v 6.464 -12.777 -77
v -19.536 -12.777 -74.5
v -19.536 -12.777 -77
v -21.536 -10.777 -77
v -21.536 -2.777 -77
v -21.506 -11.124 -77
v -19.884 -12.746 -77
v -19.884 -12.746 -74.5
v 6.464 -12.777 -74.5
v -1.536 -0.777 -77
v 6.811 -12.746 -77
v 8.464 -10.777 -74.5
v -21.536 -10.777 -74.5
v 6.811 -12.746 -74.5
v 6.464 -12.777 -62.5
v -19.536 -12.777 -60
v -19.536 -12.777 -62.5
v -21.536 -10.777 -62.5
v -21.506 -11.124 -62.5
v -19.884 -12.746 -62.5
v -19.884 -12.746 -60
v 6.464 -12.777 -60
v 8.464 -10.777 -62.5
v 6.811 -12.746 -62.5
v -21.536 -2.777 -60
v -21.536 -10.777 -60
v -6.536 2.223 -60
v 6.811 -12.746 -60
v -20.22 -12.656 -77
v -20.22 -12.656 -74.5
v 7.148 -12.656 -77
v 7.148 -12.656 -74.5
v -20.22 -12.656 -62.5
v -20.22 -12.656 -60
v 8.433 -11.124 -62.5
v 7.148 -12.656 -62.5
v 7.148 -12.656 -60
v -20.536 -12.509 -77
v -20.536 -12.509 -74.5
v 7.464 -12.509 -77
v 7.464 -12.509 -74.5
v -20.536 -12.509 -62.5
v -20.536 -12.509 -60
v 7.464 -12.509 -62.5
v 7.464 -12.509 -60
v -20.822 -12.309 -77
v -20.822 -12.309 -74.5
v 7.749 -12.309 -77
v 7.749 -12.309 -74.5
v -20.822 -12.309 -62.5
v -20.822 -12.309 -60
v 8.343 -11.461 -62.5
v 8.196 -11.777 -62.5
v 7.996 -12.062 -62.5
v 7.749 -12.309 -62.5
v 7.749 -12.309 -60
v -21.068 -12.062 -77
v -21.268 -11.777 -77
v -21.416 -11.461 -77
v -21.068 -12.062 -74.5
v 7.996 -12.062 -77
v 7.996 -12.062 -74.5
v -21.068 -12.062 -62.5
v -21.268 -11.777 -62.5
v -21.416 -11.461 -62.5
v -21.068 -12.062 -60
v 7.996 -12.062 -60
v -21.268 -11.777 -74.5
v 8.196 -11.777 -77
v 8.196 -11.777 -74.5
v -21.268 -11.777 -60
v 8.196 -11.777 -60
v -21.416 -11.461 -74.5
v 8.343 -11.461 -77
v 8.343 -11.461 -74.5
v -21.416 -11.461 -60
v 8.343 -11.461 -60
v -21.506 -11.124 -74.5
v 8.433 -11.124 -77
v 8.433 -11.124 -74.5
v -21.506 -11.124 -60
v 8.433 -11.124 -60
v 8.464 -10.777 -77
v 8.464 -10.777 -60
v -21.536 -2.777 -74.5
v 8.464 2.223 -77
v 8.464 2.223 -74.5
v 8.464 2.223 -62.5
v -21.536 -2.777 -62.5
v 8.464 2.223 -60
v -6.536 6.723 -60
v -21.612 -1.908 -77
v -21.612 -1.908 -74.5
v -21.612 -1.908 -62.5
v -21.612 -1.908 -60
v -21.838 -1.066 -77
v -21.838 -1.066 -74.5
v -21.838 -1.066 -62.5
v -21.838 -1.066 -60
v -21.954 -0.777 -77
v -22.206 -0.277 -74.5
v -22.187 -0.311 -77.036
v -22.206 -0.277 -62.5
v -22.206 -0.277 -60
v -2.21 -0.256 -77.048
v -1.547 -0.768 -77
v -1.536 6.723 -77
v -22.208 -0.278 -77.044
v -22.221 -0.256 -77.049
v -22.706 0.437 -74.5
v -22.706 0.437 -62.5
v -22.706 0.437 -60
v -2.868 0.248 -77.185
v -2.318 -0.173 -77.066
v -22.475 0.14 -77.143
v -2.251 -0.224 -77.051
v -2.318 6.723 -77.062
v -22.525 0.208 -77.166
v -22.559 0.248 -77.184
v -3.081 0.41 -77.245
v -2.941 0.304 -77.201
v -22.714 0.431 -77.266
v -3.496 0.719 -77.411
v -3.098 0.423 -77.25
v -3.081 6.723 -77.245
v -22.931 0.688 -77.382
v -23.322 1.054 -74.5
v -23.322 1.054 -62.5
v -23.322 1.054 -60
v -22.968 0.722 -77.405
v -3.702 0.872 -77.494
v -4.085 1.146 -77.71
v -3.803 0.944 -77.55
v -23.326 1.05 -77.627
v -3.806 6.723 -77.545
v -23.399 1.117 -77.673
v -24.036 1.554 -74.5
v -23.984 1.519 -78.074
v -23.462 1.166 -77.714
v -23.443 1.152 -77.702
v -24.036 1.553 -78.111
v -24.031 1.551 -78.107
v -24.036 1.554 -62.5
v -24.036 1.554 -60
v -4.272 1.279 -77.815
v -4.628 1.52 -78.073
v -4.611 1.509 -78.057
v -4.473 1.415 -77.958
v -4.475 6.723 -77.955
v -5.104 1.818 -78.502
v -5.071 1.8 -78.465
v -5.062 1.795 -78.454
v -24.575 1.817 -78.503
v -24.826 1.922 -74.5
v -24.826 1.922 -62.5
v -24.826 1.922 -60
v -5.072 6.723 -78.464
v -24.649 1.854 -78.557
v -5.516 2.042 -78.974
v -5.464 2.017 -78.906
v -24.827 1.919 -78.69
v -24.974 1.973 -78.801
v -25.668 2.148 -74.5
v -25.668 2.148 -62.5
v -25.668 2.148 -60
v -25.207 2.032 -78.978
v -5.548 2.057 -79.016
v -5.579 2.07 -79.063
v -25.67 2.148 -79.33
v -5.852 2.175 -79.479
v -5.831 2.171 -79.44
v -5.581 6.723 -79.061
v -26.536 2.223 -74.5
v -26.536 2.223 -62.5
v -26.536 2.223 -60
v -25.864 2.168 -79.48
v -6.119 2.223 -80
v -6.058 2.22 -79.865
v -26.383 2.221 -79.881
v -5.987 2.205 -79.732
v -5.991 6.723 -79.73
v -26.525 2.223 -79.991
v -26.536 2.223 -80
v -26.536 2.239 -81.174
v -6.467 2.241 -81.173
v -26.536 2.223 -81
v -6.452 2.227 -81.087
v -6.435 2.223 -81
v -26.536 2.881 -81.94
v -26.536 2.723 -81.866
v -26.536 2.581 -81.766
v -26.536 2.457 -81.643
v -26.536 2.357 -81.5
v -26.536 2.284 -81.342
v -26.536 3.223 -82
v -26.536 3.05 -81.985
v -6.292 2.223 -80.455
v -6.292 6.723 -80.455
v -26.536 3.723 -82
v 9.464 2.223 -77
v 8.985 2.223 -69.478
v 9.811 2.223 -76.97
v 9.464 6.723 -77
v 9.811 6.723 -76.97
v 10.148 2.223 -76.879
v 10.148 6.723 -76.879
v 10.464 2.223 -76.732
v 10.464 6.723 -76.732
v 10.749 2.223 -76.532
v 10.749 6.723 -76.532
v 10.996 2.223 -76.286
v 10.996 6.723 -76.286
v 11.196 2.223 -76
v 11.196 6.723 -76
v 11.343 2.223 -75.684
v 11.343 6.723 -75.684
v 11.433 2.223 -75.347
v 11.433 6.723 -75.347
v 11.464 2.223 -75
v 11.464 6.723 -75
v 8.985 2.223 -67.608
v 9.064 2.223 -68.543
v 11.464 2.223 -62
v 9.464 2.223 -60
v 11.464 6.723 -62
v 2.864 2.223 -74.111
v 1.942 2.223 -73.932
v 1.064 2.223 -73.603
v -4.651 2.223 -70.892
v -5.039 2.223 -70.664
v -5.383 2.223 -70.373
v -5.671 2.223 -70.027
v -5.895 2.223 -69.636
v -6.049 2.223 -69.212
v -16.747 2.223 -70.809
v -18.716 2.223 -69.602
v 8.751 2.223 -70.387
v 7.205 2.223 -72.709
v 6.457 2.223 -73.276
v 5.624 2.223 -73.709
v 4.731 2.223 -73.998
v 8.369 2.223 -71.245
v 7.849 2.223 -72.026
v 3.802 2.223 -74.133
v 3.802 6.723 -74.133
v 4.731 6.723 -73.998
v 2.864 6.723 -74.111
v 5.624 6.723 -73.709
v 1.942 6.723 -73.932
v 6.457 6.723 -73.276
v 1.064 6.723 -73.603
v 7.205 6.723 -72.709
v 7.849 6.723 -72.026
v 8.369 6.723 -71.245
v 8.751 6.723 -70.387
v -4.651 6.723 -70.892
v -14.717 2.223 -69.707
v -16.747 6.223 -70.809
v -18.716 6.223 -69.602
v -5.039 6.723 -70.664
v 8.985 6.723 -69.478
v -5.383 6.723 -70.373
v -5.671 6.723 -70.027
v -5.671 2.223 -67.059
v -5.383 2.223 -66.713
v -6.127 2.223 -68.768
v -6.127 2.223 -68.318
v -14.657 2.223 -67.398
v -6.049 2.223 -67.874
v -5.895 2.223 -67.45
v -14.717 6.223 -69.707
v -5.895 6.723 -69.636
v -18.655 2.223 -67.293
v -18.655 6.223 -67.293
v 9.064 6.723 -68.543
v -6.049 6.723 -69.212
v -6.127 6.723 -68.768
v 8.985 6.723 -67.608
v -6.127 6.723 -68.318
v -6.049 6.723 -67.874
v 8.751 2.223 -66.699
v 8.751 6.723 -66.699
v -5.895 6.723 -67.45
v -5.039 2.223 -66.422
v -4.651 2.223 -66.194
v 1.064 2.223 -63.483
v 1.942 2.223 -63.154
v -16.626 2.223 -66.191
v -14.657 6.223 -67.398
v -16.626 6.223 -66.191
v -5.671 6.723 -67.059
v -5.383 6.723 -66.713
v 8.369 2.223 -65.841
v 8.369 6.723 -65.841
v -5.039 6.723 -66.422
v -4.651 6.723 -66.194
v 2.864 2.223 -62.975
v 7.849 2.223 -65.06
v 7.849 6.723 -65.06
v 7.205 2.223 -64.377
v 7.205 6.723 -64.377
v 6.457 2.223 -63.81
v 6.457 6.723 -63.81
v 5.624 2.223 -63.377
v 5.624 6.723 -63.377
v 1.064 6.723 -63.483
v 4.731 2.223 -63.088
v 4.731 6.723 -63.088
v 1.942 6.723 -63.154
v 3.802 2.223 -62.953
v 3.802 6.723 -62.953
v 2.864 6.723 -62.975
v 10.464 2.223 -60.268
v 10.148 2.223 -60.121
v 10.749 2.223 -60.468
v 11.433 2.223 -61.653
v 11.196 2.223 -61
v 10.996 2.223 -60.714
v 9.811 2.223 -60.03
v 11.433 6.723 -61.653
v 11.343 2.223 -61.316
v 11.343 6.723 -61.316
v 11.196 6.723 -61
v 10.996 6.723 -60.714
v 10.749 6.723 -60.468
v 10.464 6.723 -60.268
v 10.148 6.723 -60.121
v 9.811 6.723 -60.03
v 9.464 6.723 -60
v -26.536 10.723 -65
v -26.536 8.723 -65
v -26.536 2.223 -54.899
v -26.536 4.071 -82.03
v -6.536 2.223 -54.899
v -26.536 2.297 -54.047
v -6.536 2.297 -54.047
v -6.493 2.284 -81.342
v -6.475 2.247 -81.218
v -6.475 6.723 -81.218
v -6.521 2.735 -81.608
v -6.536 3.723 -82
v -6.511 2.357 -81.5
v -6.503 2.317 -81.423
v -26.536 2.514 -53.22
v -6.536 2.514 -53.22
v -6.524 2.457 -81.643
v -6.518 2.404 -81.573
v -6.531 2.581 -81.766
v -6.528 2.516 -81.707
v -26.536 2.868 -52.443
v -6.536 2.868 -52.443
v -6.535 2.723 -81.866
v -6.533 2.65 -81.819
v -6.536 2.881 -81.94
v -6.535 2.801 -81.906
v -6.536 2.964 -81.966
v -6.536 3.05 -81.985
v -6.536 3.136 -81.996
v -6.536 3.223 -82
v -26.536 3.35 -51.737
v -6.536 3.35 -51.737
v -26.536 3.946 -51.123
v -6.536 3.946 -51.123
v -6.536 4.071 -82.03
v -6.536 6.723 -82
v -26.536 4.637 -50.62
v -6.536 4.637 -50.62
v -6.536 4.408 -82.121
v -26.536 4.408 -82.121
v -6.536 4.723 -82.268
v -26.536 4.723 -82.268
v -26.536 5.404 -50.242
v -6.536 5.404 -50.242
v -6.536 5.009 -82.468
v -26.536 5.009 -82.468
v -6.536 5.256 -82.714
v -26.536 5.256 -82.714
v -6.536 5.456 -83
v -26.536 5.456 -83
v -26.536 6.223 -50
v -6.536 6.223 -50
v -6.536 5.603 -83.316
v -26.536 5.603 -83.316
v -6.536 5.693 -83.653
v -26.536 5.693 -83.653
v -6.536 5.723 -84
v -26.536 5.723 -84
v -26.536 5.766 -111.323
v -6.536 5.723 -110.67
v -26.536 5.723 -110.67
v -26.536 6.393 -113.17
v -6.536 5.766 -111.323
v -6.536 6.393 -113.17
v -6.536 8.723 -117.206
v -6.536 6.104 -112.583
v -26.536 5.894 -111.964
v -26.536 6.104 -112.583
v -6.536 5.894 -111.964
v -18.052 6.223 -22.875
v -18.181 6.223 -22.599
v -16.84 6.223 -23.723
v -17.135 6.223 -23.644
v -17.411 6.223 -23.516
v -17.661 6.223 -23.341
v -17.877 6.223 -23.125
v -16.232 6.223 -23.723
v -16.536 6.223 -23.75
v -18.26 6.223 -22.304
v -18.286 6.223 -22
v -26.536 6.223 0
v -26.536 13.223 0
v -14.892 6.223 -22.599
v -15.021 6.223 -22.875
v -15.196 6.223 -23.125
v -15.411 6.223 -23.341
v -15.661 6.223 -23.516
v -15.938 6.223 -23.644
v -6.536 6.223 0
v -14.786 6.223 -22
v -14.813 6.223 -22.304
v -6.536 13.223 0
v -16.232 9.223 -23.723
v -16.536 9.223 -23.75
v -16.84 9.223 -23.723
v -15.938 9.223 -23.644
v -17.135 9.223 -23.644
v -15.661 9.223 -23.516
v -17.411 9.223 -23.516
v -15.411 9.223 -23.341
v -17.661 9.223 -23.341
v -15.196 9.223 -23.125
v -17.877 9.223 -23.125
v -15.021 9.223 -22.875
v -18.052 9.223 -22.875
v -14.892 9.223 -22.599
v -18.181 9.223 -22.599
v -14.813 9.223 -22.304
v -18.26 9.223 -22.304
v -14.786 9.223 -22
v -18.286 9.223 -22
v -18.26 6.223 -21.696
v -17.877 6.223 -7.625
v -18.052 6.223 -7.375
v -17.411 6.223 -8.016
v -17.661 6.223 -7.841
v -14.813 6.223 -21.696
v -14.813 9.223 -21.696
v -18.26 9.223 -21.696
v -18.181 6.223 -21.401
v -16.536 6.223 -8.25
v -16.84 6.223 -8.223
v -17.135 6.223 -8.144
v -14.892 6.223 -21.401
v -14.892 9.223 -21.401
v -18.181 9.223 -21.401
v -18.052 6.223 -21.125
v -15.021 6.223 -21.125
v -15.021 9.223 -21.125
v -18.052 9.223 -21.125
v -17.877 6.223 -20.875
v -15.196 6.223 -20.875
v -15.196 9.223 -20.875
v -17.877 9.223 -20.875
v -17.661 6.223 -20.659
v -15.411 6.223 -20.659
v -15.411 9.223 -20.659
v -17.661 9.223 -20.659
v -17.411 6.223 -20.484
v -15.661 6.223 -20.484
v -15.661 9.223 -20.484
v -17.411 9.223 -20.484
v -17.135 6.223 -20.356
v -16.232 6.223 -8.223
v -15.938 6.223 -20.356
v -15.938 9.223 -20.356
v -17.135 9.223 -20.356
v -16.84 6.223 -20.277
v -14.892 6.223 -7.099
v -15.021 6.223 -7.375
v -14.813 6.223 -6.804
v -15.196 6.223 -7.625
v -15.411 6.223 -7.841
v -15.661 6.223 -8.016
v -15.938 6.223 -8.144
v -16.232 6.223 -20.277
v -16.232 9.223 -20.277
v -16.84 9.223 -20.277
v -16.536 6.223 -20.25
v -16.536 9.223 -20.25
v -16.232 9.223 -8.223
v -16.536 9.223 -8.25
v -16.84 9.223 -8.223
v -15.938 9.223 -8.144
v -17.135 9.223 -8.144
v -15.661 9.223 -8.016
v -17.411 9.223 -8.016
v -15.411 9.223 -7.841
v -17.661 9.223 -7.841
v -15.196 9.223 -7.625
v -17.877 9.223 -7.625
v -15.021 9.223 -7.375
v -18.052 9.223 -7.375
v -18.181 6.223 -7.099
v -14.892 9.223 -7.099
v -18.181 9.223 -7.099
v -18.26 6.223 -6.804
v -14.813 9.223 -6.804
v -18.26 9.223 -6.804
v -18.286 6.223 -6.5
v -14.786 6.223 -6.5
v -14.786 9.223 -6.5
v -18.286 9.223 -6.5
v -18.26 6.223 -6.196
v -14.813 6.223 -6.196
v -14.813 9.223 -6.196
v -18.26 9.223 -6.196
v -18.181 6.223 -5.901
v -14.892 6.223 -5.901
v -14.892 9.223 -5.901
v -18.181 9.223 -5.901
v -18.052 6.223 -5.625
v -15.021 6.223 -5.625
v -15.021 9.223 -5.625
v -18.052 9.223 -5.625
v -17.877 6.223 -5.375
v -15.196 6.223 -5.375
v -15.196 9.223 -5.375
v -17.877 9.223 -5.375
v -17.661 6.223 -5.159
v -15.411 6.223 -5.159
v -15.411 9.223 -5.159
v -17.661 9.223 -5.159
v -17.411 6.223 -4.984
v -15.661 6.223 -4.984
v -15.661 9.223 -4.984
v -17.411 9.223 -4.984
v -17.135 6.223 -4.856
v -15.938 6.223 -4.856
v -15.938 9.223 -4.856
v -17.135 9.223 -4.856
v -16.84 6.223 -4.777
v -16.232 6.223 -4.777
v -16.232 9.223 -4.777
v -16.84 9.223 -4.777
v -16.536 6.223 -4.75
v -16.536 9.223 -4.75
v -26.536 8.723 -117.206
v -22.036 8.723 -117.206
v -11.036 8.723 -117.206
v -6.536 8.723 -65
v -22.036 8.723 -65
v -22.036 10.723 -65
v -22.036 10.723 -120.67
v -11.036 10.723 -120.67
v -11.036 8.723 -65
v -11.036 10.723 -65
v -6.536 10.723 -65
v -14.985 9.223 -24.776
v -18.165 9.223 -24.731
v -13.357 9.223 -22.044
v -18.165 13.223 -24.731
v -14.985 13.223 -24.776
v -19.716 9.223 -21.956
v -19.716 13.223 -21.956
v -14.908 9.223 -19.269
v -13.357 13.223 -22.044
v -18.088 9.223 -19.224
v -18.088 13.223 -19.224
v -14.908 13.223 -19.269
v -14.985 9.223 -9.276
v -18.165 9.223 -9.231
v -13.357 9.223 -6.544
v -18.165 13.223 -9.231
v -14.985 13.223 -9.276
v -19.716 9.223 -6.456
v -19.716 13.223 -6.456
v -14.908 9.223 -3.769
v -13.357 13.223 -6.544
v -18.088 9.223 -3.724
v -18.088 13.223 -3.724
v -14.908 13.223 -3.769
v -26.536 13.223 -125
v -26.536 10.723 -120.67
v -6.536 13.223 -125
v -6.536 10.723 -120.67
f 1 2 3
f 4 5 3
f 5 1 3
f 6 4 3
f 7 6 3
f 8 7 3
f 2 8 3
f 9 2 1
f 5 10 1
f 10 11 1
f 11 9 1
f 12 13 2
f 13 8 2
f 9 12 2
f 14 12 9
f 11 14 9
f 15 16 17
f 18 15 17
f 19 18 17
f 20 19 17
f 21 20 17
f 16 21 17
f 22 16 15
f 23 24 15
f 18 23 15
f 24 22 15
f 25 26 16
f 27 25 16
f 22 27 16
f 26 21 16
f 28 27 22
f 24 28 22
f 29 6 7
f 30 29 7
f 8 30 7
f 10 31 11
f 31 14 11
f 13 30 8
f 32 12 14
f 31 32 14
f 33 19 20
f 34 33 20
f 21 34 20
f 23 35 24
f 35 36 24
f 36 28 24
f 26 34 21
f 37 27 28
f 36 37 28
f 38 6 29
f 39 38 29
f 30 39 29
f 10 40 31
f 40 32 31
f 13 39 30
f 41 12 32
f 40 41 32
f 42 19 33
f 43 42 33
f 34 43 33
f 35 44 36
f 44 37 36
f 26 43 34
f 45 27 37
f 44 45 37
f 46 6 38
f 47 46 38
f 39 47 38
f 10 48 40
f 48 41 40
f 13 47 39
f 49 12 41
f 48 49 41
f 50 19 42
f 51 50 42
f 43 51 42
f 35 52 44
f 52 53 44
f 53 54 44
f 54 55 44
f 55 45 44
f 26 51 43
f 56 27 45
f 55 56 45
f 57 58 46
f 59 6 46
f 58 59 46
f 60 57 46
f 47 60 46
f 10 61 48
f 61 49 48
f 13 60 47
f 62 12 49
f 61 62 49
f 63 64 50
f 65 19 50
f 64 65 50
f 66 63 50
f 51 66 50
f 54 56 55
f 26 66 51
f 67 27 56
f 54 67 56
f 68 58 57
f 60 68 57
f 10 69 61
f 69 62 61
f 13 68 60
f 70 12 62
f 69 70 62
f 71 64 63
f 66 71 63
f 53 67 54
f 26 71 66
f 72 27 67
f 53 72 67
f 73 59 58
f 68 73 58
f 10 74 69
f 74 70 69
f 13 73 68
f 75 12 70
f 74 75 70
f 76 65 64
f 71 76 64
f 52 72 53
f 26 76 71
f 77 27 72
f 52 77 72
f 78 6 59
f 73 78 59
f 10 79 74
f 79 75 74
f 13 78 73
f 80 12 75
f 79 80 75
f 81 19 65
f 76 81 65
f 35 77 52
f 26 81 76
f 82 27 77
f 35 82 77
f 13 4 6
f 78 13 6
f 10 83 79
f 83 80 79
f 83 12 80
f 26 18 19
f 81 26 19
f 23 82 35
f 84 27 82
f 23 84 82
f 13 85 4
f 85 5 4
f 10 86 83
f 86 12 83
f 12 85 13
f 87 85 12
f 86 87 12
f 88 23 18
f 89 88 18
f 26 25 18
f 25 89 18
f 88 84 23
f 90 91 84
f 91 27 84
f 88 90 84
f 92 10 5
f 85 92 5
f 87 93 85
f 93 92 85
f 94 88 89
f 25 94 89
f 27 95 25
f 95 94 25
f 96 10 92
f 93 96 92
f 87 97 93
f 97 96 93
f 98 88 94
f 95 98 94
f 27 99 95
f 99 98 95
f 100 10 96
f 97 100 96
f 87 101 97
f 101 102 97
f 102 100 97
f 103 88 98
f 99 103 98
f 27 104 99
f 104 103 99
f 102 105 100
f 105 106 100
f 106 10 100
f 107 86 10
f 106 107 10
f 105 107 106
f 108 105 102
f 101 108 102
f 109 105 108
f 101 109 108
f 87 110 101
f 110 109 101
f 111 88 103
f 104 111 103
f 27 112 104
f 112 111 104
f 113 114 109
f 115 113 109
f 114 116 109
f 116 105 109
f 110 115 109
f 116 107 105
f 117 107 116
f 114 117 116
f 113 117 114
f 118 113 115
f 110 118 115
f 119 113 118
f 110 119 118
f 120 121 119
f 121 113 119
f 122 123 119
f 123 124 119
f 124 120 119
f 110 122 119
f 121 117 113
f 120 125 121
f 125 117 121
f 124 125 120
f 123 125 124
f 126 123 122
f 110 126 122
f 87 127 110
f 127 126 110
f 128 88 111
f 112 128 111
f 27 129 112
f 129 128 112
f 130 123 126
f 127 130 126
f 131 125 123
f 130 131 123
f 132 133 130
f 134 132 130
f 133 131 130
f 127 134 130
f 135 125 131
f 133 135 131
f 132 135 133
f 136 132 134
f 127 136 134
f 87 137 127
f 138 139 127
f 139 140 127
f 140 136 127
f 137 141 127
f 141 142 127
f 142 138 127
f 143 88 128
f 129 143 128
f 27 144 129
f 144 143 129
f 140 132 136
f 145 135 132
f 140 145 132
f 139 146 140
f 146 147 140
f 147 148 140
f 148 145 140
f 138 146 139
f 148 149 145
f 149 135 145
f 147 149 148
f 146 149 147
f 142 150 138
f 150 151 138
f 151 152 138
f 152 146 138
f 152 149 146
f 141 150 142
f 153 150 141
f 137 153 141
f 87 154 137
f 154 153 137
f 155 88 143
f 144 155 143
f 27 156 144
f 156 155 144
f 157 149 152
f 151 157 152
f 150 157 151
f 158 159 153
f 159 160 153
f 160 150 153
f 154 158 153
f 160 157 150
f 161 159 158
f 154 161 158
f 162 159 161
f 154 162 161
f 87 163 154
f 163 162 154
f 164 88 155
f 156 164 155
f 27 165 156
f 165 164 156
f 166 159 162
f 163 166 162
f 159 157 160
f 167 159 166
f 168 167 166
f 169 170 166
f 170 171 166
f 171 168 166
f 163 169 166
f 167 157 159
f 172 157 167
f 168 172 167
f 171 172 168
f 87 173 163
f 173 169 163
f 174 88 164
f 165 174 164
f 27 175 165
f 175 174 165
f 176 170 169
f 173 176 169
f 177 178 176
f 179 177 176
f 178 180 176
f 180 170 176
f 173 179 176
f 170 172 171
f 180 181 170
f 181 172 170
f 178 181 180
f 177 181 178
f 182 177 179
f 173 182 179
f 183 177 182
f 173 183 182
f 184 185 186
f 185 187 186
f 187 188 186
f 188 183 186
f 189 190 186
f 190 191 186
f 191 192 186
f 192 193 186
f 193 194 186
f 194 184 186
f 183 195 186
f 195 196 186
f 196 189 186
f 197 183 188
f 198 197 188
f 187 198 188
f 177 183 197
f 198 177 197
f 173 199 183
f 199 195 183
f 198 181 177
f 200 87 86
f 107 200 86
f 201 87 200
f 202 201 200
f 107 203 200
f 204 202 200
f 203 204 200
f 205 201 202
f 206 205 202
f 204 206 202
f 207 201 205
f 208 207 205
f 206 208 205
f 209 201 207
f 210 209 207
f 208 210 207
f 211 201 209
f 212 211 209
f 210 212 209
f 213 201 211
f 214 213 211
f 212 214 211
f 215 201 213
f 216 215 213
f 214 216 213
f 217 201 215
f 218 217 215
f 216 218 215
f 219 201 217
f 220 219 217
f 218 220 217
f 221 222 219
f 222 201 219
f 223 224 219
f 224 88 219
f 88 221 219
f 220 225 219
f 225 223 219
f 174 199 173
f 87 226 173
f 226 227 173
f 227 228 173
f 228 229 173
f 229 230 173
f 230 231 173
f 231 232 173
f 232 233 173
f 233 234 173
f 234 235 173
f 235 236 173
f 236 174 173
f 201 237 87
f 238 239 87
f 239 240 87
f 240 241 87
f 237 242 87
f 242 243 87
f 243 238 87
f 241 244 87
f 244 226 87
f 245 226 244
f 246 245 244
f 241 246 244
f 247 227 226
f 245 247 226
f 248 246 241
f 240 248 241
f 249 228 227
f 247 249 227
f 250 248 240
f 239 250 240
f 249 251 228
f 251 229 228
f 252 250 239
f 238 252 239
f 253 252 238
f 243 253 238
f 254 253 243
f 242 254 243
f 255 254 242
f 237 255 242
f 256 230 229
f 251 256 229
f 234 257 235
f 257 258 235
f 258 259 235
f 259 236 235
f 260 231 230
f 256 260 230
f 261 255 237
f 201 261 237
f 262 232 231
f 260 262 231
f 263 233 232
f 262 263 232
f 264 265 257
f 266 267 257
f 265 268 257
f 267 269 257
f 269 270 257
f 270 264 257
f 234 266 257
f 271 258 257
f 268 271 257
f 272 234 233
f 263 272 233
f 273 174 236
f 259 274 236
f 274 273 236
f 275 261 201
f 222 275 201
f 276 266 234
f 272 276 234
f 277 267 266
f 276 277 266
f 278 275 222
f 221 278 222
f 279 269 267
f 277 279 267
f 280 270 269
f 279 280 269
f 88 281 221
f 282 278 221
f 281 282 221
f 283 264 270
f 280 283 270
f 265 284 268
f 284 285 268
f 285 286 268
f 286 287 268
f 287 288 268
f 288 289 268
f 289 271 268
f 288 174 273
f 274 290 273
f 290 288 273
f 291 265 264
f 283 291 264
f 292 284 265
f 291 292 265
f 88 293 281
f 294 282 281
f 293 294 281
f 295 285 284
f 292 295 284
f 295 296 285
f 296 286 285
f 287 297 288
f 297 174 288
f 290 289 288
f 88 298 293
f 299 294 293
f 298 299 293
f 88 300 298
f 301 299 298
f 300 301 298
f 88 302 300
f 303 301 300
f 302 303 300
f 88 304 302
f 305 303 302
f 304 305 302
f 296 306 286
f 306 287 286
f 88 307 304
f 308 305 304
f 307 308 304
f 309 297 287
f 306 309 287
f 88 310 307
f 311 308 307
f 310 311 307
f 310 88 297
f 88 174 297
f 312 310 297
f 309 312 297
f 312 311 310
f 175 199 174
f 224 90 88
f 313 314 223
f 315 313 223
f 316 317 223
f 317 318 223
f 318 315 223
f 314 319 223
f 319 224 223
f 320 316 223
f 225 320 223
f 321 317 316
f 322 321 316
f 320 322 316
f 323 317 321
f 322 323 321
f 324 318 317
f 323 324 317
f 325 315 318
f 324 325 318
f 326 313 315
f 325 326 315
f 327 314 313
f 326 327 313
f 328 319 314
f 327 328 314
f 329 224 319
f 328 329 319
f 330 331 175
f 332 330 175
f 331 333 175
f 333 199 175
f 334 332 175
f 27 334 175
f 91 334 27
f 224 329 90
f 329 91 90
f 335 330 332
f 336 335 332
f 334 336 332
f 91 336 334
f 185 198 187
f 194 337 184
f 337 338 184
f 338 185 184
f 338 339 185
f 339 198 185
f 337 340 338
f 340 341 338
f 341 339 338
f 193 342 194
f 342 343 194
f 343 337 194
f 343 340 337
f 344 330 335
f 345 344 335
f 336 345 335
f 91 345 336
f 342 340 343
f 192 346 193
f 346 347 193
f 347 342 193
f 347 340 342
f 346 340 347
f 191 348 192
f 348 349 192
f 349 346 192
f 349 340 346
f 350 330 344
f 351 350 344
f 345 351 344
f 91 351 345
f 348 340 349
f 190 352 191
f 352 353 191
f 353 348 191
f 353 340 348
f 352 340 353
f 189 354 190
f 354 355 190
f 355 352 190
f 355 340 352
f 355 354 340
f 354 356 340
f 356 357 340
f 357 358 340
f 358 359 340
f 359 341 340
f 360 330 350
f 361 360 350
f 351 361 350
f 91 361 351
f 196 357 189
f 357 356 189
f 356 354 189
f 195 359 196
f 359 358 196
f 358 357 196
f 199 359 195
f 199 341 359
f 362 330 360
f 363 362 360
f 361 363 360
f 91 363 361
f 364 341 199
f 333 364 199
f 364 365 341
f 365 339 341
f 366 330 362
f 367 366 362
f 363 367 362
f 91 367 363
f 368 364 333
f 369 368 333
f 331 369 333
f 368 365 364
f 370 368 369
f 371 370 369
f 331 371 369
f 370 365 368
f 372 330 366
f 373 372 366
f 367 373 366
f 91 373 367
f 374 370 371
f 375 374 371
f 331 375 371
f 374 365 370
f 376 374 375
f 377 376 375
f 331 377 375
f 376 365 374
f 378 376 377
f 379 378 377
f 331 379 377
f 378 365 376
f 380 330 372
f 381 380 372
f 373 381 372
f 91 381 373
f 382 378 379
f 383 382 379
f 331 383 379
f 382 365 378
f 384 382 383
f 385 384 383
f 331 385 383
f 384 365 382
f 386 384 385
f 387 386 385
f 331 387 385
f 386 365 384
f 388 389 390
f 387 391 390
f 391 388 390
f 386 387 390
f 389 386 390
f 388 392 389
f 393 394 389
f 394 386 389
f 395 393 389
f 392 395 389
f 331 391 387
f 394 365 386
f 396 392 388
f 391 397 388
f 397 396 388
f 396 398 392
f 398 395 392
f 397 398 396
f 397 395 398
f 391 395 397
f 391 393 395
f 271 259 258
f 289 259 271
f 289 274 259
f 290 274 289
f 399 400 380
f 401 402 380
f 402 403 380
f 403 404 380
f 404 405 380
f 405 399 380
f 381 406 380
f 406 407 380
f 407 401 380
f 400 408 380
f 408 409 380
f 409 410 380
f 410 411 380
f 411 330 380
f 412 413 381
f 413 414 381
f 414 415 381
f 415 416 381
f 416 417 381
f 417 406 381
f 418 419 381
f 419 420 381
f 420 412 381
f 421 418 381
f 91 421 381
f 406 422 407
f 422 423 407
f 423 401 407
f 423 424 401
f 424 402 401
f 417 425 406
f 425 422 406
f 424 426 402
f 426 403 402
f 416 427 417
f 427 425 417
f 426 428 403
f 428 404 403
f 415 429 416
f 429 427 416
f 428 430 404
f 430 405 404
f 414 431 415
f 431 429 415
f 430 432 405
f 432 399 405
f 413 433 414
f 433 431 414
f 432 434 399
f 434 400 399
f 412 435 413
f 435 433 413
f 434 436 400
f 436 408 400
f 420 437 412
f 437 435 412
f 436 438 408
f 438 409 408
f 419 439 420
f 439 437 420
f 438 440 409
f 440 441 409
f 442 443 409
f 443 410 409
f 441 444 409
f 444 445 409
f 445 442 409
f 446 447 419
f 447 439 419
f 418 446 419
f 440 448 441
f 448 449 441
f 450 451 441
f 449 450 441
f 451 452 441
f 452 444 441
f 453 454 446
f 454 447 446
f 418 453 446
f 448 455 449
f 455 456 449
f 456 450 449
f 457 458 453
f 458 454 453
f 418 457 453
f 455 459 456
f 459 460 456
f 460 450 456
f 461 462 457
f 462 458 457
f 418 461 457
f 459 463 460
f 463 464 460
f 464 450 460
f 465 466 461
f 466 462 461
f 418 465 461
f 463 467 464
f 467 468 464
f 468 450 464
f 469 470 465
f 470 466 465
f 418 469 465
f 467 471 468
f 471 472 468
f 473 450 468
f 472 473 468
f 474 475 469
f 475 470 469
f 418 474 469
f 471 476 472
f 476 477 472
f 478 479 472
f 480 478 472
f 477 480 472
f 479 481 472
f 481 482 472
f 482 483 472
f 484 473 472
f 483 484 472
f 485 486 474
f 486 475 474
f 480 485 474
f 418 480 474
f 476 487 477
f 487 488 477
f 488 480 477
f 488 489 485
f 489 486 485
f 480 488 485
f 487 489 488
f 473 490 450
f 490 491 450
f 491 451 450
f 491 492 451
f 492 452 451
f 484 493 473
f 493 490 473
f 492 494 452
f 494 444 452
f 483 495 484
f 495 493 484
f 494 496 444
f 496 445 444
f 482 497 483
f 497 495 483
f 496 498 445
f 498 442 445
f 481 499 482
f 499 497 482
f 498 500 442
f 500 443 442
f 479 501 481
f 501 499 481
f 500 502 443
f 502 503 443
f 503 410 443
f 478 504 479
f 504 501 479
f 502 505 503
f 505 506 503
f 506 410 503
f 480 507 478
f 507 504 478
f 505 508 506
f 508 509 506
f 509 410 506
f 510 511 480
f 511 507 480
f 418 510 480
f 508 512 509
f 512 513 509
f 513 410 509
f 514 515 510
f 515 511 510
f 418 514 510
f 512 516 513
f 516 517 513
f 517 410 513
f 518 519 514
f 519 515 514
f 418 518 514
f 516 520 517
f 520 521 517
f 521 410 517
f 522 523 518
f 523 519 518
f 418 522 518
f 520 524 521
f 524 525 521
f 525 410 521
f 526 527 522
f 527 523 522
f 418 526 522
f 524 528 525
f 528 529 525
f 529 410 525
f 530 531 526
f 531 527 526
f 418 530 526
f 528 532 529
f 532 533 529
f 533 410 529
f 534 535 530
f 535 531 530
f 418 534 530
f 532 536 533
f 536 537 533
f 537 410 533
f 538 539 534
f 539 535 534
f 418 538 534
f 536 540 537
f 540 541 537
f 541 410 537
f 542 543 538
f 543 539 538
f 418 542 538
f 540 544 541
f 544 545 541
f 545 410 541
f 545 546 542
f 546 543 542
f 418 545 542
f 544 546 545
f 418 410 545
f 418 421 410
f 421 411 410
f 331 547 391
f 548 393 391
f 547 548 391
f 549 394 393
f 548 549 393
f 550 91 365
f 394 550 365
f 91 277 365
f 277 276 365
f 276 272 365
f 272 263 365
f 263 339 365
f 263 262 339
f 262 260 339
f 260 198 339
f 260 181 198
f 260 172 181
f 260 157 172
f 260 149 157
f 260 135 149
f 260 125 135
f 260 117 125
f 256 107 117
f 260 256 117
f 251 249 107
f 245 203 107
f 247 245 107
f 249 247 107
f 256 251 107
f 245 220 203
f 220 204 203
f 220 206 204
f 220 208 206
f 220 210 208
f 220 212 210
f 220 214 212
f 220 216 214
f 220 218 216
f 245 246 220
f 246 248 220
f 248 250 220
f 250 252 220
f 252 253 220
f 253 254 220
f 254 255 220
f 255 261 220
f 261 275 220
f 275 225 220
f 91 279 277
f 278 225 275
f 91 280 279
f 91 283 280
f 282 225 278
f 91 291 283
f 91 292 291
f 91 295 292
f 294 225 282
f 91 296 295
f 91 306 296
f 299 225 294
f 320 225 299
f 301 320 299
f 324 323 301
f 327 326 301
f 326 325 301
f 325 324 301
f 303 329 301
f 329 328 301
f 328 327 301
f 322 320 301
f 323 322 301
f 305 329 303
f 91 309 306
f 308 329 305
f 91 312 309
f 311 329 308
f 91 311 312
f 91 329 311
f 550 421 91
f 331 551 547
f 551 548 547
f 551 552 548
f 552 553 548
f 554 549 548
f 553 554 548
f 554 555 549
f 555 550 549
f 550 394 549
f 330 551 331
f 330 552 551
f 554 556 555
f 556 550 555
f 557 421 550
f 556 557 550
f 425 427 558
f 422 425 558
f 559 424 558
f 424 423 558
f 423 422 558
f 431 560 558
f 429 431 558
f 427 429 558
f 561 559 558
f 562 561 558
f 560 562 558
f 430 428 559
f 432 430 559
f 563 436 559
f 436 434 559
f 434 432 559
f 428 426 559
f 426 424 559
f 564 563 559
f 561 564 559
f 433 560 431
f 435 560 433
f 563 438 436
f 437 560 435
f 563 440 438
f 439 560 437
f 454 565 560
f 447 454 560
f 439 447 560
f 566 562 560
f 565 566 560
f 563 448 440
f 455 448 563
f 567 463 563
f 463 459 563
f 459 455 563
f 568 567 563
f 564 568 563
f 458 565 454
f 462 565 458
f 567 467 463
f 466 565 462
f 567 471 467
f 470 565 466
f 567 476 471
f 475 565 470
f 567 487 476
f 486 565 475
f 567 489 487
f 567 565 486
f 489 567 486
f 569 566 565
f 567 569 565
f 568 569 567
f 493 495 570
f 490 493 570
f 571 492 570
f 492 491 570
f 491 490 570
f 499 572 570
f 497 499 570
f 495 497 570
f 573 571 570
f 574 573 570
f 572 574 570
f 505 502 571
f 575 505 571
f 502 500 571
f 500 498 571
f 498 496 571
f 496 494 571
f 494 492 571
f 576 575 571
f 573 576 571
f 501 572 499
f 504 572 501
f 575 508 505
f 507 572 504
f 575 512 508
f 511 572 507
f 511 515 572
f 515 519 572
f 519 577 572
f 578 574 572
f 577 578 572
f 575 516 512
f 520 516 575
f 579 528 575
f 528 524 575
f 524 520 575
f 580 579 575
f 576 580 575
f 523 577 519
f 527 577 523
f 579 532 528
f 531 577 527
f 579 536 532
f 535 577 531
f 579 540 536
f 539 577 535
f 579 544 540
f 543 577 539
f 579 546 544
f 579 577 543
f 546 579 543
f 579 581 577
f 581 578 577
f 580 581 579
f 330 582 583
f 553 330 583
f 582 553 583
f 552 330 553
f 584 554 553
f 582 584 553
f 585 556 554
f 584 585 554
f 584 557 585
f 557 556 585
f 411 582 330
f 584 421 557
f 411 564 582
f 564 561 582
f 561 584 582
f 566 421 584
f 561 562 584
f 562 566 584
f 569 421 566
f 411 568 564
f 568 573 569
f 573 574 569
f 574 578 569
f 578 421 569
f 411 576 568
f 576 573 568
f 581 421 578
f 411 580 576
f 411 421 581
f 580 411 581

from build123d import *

# Parameters (mm, degrees)
SKETCH1_W                = 20
SKETCH1_H                = 8
BOSS_EXTRUDE1_DEPTH      = 125
CUT_EXTRUDE1_DEPTH       = 60
SKETCH3_W                = 20
SKETCH3_H                = 125
BOSS_EXTRUDE2_DEPTH      = 3
SKETCH5_W                = 4.5
SKETCH5_H                = 2
CUT_EXTRUDE2_DEPTH       = 60
BOSS_EXTRUDE5_DEPTH      = 15
BOSS_EXTRUDE5_DEPTH_BACK = 15
SKETCH9_W                = 2.5
SKETCH9_H                = 15
SKETCH10_W               = 17
SKETCH10_H               = 4.5
BOSS_EXTRUDE6_DEPTH      = 18
CUT_EXTRUDE3_DEPTH       = 129.663032374
CUT_EXTRUDE4_DEPTH       = 4
FILLET1_R                = 5
FILLET2_R                = 3
FILLET3_R                = 5
FILLET4_R                = 2
SKETCH13_W               = 46.736094472
SKETCH13_H               = 46.819354585
CUT_EXTRUDE5_DEPTH       = 30
SKETCH14_W               = 30.537207939
SKETCH14_H               = 50.61246041
CUT_EXTRUDE6_DEPTH       = 3.5
FILLET5_R                = 5
FILLET6_R                = 2
FILLET7_R                = 1
FILLET8_R                = 2
SKETCH15_W               = 20
SKETCH15_H               = 60
CUT_EXTRUDE7_DEPTH       = 5
SKETCH16_W               = 20
SKETCH16_H               = 60
BOSS_EXTRUDE7_DEPTH      = 1.5
SKETCH17_W               = 20
SKETCH17_H               = 10
BOSS_EXTRUDE8_DEPTH      = 4
FILLET9_R                = 5
SKETCH18_R               = 1.75
CUT_EXTRUDE8_DEPTH       = 131.403895283
CUT_EXTRUDE9_DEPTH       = 4


# Some blends are built 0.0001 mm under size
with BuildPart() as part:
    # Sketch1 → Boss-Extrude1 (new body)
    with BuildSketch(Plane.XY):
        with Locations((-16.536312849, 6.223463687)):
            Rectangle(SKETCH1_W, SKETCH1_H)
    extrude(amount=-BOSS_EXTRUDE1_DEPTH)

    # Sketch2 → Cut-Extrude1 (cut)
    with BuildSketch(Plane.XY):
        Polygon((-26.536312849, 7.723463687), (-22.186312849, 7.723463687), (-22.186312849, 5.723463687), (-23.686312849, 5.723463687), (-23.686312849, 4.223463687), (-22.186312849, 4.223463687), (-22.186312849, 2.723463687), (-20.536312849, 2.723463687), (-20.536312849, 7.723463687), (-12.536312849, 7.723463687), (-12.536312849, 2.723463687), (-10.886312849, 2.723463687), (-10.886312849, 4.223463687), (-9.386312849, 4.223463687), (-9.386312849, 5.723463687), (-10.886312849, 5.723463687), (-10.886312849, 7.723463687), (-6.536312849, 7.723463687), (-6.536312849, 2.223463687), (-26.536312849, 2.223463687), align=None)
    extrude(amount=-CUT_EXTRUDE1_DEPTH, mode=Mode.SUBTRACT)

    # Sketch3 → Boss-Extrude2 (add)
    with BuildSketch(Plane(origin=(0, 10.223463687, 0), x_dir=(1, 0, 0), z_dir=(0, 1, 0))):
        with Locations((-16.536312849, 62.5)):
            Rectangle(SKETCH3_W, SKETCH3_H)
    extrude(amount=BOSS_EXTRUDE2_DEPTH)

    # Sketch5 → Cut-Extrude2 (cut)
    with BuildSketch(Plane(origin=(0, 0, -125), x_dir=(-1, 0, 0), z_dir=(0, 0, -1))):
        with Locations((8.786312849, 9.723463687)):
            Rectangle(SKETCH5_W, SKETCH5_H)
        with Locations((24.286312849, 9.723463687)):
            Rectangle(SKETCH5_W, SKETCH5_H)
    extrude(amount=-CUT_EXTRUDE2_DEPTH, mode=Mode.SUBTRACT)

    # Sketch9 → Boss-Extrude5 (add, two sides: drawn at the far end of the back side and taken through both)
    with BuildSketch(Plane(origin=(-6.536312849, 0, 0), x_dir=(0, 0, -1), z_dir=(1, 0, 0)).offset(-BOSS_EXTRUDE5_DEPTH_BACK)):
        with Locations((61.25, -5.276536313)):
            Rectangle(SKETCH9_W, SKETCH9_H)
        with Locations((75.75, -5.276536313)):
            Rectangle(SKETCH9_W, SKETCH9_H)
    extrude(amount=BOSS_EXTRUDE5_DEPTH + BOSS_EXTRUDE5_DEPTH_BACK)

    # Sketch10 → Boss-Extrude6 (add)
    with BuildSketch(Plane(origin=(-6.536312849, 0, 0), x_dir=(0, 0, -1), z_dir=(1, 0, 0))):
        with Locations((68.5, 4.473463687)):
            Rectangle(SKETCH10_W, SKETCH10_H)
    extrude(amount=BOSS_EXTRUDE6_DEPTH)

    # Sketch11 → Cut-Extrude3 (cut, through all)
    with BuildSketch(Plane.XZ.offset(-2.223463687)):
        with BuildLine():
            Line((-4.650598563, -66.193892243), (1.063687151, -63.483368535))
            ThreePointArc((1.063687151, -63.483368535), (9.063687151, -68.543012791), (1.063687151, -73.602657047))
            Line((1.063687151, -73.602657047), (-4.650598563, -70.892133338))
            ThreePointArc((-4.650598563, -70.892133338), (-6.136312849, -68.543012791), (-4.650598563, -66.193892243))
        make_face()
    extrude(amount=-CUT_EXTRUDE3_DEPTH, mode=Mode.SUBTRACT)

    # Sketch12 → Cut-Extrude4 (cut)
    with BuildSketch(Plane.XZ.offset(-2.223463687)):
        Polygon((-14.717314599, -69.706805379), (-14.656689608, -67.398200185), (-16.625687858, -66.191394806), (-18.6553111, -67.293194621), (-18.71593609, -69.601799815), (-16.74693784, -70.808605194), align=None)
    extrude(amount=-CUT_EXTRUDE4_DEPTH, mode=Mode.SUBTRACT)

    # Fillet1
    fillet1_edges = [part.edges().sort_by_distance(p)[0] for p in [
        (-6.536312849, 4.473463687, -77),
    ]]
    fillet(fillet1_edges, radius=FILLET1_R)

    # Fillet2
    fillet2_edges = [part.edges().sort_by_distance(p)[0] for p in [
        (-11.536312849, 2.223463687, -77),
    ]]
    fillet(fillet2_edges, radius=FILLET2_R)

    # Fillet3
    fillet3_edges = [part.edges().sort_by_distance(p)[0] for p in [
        (-21.536312849, 2.223463687, -61.25),
        (-21.536312849, 2.223463687, -77.25),
    ]]
    fillet(fillet3_edges, radius=FILLET3_R - 0.0001)  # a hair under: the kernel refuses the full size

    # Fillet4
    fillet4_edges = [part.edges().sort_by_distance(p)[0] for p in [
        (11.463687151, 4.473463687, -77),
        (11.463687151, 4.473463687, -60),
    ]]
    fillet(fillet4_edges, radius=FILLET4_R)

    # Sketch13 → Cut-Extrude5 (cut)
    with BuildSketch(Plane(origin=(0, -44.208989971, -25.52407226), x_dir=(-1, 0, 0), z_dir=(0, 0.866025403784438, 0.500000000000001))):
        with Locations((16.217588554, -108.832455191)):
            Rectangle(SKETCH13_W, SKETCH13_H)
    extrude(amount=-CUT_EXTRUDE5_DEPTH, mode=Mode.SUBTRACT)

    # Sketch14 → Cut-Extrude6 (cut)
    with BuildSketch(Plane.XZ.offset(-2.223463687)):
        with Locations((-21.804916819, -107.306230205)):
            Rectangle(SKETCH14_W, SKETCH14_H)
    extrude(amount=-CUT_EXTRUDE6_DEPTH, mode=Mode.SUBTRACT)

    # Fillet5
    fillet5_edges = [part.edges().sort_by_distance(p)[0] for p in [
        (-16.536312849, 5.723463687, -112.009618943),
    ]]
    fillet(fillet5_edges, radius=FILLET5_R)

    # Fillet6
    fillet6_edges = [part.edges().sort_by_distance(p)[0] for p in [
        (-16.536312849, 5.723463687, -82),
    ]]
    fillet(fillet6_edges, radius=FILLET6_R)

    # Fillet7
    fillet7_edges = [part.edges().sort_by_distance(p)[0] for p in [
        (-16.536312849, 2.223463687, -82),
    ]]
    fillet(fillet7_edges, radius=FILLET7_R)

    # Fillet8
    fillet8_edges = [part.edges().sort_by_distance(p)[0] for p in [
        (-21.536312849, -12.776536313, -61.25),
        (8.463687151, -12.776536313, -61.25),
        (-21.536312849, -12.776536313, -75.75),
        (8.463687151, -12.776536313, -75.75),
    ]]
    fillet(fillet8_edges, radius=FILLET8_R)

    # Sketch15 → Cut-Extrude7 (cut)
    with BuildSketch(Plane.XZ.offset(-2.723463687)):
        with Locations((-16.536312849, -30)):
            Rectangle(SKETCH15_W, SKETCH15_H)
    extrude(amount=-CUT_EXTRUDE7_DEPTH, mode=Mode.SUBTRACT)

    # Sketch16 → Boss-Extrude7 (add)
    with BuildSketch(Plane.XZ.offset(-7.723463687)):
        with Locations((-16.536312849, -30)):
            Rectangle(SKETCH16_W, SKETCH16_H)
    extrude(amount=BOSS_EXTRUDE7_DEPTH)

    # Sketch17 → Boss-Extrude8 (add)
    with BuildSketch(Plane.XZ.offset(-6.223463687)):
        with Locations((-16.536312849, -55)):
            Rectangle(SKETCH17_W, SKETCH17_H)
    extrude(amount=BOSS_EXTRUDE8_DEPTH)

    # Fillet9
    # the kernel refuses this fillet: 5 mm, written as the material it takes off along each edge
    with BuildSketch(Plane(origin=(5.711135865, 2.223463687, -50), x_dir=(0, 1.0, -1.572075802868717e-12), z_dir=(-1, 0, 0))) as fillet9_piece_1:
        with BuildLine():
            CenterArc((5, 4.898979486), FILLET9_R, 180, 78.463040967)
            Line((0, 4.898979486), (-0.1, 4.898979486))
            Line((-0.1, 4.898979486), (-0.1, 0))
            Line((-0.1, 0), (0, -0.1))
            ThreePointArc((0, -0.1), (2, -0.1), (3.98, -0.09797959))
            Line((3.98, -0.09797959), (4, 0))
        make_face()
    extrude(amount=44.494897428, mode=Mode.SUBTRACT)

    # Sketch18 → Cut-Extrude8 (cut, through all)
    with BuildSketch(Plane(origin=(0, 13.223463687, 0), x_dir=(1, 0, 0), z_dir=(0, 1, 0))):
        with Locations(Location((-16.536312849, 22, 0), (0, 0, 270))):
            Circle(SKETCH18_R)
        with Locations(Location((-16.536312849, 6.5, 0), (0, 0, 270))):
            Circle(SKETCH18_R)
    extrude(amount=-CUT_EXTRUDE8_DEPTH, mode=Mode.SUBTRACT)

    # Sketch19 → Cut-Extrude9 (cut)
    with BuildSketch(Plane(origin=(0, 13.223463687, 0), x_dir=(1, 0, 0), z_dir=(0, 1, 0))):
        Polygon((-18.087719019, 19.224114754), (-14.908028793, 19.268500223), (-13.356622624, 22.044385468), (-14.98490668, 24.775885246), (-18.164596905, 24.731499777), (-19.716003075, 21.955614532), align=None)
        Polygon((-14.908028793, 3.768500223), (-13.356622624, 6.544385468), (-14.98490668, 9.275885246), (-18.164596905, 9.231499777), (-19.716003075, 6.455614532), (-18.087719019, 3.724114754), align=None)
    extrude(amount=-CUT_EXTRUDE9_DEPTH, mode=Mode.SUBTRACT)


solid = part.part
